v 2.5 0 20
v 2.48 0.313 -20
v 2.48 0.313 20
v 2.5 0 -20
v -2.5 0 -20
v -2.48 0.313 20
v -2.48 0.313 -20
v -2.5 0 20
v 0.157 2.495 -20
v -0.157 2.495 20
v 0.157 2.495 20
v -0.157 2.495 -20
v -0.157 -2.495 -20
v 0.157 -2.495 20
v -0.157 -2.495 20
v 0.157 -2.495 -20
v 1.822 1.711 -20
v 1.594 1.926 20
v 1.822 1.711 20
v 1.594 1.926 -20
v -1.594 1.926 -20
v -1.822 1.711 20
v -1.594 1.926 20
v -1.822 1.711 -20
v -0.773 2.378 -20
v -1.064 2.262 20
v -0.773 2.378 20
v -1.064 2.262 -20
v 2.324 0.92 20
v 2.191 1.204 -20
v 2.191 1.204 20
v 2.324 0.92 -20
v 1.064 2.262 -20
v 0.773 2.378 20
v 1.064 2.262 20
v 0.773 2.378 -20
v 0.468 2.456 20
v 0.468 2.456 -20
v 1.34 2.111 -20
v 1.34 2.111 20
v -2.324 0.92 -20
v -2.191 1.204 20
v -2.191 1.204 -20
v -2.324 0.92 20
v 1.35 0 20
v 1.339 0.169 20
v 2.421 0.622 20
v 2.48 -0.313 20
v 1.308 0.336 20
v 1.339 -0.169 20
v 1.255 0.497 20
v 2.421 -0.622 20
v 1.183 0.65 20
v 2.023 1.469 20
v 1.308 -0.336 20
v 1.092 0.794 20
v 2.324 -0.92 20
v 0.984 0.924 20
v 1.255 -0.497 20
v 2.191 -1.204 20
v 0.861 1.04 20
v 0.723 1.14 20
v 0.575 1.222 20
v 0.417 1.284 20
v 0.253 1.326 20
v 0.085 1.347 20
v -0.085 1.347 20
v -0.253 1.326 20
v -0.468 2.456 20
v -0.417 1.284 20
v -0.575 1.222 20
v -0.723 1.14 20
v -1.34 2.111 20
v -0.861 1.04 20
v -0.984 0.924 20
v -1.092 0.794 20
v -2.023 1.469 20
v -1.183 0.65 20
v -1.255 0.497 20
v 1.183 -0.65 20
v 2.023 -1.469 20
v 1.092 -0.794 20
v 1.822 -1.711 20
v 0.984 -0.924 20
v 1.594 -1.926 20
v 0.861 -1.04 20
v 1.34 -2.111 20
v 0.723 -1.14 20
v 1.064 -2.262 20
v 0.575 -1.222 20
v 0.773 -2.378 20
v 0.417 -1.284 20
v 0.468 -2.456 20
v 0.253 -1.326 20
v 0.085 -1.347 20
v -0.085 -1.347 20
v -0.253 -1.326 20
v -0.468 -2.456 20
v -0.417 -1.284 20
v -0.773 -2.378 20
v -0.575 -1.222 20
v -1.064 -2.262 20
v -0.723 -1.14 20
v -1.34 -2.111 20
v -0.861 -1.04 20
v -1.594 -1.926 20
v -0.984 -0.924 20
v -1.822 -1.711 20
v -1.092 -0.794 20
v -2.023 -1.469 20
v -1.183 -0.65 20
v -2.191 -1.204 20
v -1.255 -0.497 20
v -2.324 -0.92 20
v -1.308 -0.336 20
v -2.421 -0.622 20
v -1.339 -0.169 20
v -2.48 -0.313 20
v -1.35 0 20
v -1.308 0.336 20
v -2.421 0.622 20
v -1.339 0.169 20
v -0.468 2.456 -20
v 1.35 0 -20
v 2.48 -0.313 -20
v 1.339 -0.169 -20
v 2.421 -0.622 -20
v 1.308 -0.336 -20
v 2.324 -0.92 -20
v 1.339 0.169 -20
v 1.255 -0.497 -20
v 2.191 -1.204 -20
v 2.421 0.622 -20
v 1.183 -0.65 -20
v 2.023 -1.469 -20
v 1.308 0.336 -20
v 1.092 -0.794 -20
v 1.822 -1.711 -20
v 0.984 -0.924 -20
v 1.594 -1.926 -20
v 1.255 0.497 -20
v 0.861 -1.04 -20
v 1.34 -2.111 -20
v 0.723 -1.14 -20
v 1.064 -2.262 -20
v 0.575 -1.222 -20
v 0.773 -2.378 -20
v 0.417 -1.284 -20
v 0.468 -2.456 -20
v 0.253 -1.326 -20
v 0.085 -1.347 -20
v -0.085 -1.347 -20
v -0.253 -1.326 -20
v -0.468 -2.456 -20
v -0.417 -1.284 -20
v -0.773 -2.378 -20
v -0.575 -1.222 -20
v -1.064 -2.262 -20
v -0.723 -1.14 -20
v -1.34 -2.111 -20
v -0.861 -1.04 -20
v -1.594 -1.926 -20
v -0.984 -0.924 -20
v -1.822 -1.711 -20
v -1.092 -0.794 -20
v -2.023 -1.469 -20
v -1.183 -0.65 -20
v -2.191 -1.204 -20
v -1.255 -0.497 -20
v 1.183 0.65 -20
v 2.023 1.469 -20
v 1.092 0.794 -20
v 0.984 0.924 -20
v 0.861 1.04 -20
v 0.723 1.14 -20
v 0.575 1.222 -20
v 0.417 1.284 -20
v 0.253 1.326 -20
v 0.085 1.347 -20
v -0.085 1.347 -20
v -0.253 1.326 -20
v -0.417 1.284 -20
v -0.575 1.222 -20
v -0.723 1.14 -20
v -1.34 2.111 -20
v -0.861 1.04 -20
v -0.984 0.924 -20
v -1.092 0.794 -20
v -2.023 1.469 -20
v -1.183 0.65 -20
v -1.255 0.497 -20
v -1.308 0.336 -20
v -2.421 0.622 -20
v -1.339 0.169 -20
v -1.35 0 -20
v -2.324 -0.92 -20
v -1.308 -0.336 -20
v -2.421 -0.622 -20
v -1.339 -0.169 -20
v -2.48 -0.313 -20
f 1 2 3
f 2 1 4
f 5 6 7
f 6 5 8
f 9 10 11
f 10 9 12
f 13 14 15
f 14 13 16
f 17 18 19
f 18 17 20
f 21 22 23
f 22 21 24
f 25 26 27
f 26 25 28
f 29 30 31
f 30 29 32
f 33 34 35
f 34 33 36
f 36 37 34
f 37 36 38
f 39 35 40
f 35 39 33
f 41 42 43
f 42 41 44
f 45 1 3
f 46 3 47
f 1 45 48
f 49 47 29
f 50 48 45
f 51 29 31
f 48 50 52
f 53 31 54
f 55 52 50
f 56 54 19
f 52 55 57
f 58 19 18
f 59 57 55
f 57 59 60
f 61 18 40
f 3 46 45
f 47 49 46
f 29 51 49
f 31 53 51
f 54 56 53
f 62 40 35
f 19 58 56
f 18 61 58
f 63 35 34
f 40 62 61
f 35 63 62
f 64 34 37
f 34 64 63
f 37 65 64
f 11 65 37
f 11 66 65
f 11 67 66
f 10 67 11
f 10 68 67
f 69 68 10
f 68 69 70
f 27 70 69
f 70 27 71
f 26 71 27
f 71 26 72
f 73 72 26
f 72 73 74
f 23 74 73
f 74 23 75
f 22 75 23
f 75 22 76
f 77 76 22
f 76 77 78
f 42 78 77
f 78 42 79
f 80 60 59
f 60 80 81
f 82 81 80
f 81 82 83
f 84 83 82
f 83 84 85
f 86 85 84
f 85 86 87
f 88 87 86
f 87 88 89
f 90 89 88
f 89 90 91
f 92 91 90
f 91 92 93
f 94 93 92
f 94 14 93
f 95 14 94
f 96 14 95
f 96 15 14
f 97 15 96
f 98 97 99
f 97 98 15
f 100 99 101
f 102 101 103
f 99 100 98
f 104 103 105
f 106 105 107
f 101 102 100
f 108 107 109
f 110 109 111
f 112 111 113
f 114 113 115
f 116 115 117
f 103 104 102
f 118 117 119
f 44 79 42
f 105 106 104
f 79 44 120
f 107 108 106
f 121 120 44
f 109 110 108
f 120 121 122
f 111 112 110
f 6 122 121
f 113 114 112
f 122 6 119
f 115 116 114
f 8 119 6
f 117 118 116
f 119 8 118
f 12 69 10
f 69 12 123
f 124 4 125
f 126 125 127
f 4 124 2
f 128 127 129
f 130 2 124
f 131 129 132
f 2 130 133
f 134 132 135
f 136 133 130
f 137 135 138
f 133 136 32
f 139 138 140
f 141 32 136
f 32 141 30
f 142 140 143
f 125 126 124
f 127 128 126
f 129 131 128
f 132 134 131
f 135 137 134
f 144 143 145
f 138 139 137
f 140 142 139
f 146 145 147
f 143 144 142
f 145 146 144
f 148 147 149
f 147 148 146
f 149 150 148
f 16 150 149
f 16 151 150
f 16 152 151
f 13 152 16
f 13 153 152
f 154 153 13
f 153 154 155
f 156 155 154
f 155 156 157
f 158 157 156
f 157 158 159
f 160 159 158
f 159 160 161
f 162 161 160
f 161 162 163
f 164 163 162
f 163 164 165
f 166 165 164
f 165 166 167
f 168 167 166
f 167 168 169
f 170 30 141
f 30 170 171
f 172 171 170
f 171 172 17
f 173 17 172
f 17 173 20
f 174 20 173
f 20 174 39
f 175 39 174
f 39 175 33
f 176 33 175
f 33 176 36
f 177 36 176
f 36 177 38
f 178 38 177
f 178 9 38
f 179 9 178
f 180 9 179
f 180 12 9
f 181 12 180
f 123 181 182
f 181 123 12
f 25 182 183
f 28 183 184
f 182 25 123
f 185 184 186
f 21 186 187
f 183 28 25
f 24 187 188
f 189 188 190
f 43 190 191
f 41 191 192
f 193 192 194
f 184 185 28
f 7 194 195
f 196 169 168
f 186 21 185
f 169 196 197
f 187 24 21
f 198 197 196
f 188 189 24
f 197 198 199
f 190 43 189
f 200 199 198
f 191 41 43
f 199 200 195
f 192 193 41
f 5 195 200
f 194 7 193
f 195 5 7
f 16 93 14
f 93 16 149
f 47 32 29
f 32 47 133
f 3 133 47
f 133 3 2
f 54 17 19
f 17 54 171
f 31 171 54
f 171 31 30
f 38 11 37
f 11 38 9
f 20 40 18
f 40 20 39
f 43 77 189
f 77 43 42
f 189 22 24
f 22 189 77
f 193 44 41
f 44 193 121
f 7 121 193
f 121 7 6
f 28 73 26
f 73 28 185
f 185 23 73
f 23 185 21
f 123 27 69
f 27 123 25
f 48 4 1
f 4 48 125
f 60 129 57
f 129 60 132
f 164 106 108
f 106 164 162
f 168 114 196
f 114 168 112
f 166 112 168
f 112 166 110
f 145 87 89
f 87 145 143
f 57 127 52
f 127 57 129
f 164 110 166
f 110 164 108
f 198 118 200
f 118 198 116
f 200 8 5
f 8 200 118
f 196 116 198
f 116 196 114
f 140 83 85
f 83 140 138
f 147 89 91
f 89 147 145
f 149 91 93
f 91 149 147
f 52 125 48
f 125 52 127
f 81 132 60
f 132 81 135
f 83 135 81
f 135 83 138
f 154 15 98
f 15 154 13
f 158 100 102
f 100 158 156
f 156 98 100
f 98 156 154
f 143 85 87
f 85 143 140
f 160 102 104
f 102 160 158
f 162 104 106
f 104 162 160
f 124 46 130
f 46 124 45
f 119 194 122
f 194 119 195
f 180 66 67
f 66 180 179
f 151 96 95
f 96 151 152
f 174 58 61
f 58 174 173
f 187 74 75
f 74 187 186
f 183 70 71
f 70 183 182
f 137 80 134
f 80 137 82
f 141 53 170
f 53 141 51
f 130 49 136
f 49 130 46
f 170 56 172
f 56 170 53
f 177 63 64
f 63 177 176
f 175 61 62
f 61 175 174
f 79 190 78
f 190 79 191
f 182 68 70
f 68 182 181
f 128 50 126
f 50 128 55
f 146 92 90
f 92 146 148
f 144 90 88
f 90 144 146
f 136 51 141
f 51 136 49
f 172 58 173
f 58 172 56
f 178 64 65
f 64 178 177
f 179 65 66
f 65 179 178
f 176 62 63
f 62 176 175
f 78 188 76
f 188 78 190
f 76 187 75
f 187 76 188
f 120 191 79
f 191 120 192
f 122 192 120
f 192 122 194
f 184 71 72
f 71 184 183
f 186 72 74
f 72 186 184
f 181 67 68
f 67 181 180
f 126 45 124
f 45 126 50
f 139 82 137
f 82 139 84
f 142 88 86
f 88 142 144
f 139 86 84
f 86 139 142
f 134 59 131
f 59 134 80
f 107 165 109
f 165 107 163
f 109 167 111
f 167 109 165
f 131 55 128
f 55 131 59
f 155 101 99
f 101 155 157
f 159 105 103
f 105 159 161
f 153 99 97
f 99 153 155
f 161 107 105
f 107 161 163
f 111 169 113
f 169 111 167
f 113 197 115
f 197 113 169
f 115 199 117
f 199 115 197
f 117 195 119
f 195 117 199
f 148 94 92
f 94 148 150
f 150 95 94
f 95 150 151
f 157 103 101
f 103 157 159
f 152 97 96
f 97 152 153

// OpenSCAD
$fn = 50;


difference() {
	union() {
		translate(v = [0, 0, -20.0000000000]) {
			cylinder(h = 40, r = 2.5000000000);
		}
	}
	union() {
		translate(v = [0, 0, -100.0000000000]) {
			cylinder(h = 200, r = 1.3500000000);
		}
	}
}
